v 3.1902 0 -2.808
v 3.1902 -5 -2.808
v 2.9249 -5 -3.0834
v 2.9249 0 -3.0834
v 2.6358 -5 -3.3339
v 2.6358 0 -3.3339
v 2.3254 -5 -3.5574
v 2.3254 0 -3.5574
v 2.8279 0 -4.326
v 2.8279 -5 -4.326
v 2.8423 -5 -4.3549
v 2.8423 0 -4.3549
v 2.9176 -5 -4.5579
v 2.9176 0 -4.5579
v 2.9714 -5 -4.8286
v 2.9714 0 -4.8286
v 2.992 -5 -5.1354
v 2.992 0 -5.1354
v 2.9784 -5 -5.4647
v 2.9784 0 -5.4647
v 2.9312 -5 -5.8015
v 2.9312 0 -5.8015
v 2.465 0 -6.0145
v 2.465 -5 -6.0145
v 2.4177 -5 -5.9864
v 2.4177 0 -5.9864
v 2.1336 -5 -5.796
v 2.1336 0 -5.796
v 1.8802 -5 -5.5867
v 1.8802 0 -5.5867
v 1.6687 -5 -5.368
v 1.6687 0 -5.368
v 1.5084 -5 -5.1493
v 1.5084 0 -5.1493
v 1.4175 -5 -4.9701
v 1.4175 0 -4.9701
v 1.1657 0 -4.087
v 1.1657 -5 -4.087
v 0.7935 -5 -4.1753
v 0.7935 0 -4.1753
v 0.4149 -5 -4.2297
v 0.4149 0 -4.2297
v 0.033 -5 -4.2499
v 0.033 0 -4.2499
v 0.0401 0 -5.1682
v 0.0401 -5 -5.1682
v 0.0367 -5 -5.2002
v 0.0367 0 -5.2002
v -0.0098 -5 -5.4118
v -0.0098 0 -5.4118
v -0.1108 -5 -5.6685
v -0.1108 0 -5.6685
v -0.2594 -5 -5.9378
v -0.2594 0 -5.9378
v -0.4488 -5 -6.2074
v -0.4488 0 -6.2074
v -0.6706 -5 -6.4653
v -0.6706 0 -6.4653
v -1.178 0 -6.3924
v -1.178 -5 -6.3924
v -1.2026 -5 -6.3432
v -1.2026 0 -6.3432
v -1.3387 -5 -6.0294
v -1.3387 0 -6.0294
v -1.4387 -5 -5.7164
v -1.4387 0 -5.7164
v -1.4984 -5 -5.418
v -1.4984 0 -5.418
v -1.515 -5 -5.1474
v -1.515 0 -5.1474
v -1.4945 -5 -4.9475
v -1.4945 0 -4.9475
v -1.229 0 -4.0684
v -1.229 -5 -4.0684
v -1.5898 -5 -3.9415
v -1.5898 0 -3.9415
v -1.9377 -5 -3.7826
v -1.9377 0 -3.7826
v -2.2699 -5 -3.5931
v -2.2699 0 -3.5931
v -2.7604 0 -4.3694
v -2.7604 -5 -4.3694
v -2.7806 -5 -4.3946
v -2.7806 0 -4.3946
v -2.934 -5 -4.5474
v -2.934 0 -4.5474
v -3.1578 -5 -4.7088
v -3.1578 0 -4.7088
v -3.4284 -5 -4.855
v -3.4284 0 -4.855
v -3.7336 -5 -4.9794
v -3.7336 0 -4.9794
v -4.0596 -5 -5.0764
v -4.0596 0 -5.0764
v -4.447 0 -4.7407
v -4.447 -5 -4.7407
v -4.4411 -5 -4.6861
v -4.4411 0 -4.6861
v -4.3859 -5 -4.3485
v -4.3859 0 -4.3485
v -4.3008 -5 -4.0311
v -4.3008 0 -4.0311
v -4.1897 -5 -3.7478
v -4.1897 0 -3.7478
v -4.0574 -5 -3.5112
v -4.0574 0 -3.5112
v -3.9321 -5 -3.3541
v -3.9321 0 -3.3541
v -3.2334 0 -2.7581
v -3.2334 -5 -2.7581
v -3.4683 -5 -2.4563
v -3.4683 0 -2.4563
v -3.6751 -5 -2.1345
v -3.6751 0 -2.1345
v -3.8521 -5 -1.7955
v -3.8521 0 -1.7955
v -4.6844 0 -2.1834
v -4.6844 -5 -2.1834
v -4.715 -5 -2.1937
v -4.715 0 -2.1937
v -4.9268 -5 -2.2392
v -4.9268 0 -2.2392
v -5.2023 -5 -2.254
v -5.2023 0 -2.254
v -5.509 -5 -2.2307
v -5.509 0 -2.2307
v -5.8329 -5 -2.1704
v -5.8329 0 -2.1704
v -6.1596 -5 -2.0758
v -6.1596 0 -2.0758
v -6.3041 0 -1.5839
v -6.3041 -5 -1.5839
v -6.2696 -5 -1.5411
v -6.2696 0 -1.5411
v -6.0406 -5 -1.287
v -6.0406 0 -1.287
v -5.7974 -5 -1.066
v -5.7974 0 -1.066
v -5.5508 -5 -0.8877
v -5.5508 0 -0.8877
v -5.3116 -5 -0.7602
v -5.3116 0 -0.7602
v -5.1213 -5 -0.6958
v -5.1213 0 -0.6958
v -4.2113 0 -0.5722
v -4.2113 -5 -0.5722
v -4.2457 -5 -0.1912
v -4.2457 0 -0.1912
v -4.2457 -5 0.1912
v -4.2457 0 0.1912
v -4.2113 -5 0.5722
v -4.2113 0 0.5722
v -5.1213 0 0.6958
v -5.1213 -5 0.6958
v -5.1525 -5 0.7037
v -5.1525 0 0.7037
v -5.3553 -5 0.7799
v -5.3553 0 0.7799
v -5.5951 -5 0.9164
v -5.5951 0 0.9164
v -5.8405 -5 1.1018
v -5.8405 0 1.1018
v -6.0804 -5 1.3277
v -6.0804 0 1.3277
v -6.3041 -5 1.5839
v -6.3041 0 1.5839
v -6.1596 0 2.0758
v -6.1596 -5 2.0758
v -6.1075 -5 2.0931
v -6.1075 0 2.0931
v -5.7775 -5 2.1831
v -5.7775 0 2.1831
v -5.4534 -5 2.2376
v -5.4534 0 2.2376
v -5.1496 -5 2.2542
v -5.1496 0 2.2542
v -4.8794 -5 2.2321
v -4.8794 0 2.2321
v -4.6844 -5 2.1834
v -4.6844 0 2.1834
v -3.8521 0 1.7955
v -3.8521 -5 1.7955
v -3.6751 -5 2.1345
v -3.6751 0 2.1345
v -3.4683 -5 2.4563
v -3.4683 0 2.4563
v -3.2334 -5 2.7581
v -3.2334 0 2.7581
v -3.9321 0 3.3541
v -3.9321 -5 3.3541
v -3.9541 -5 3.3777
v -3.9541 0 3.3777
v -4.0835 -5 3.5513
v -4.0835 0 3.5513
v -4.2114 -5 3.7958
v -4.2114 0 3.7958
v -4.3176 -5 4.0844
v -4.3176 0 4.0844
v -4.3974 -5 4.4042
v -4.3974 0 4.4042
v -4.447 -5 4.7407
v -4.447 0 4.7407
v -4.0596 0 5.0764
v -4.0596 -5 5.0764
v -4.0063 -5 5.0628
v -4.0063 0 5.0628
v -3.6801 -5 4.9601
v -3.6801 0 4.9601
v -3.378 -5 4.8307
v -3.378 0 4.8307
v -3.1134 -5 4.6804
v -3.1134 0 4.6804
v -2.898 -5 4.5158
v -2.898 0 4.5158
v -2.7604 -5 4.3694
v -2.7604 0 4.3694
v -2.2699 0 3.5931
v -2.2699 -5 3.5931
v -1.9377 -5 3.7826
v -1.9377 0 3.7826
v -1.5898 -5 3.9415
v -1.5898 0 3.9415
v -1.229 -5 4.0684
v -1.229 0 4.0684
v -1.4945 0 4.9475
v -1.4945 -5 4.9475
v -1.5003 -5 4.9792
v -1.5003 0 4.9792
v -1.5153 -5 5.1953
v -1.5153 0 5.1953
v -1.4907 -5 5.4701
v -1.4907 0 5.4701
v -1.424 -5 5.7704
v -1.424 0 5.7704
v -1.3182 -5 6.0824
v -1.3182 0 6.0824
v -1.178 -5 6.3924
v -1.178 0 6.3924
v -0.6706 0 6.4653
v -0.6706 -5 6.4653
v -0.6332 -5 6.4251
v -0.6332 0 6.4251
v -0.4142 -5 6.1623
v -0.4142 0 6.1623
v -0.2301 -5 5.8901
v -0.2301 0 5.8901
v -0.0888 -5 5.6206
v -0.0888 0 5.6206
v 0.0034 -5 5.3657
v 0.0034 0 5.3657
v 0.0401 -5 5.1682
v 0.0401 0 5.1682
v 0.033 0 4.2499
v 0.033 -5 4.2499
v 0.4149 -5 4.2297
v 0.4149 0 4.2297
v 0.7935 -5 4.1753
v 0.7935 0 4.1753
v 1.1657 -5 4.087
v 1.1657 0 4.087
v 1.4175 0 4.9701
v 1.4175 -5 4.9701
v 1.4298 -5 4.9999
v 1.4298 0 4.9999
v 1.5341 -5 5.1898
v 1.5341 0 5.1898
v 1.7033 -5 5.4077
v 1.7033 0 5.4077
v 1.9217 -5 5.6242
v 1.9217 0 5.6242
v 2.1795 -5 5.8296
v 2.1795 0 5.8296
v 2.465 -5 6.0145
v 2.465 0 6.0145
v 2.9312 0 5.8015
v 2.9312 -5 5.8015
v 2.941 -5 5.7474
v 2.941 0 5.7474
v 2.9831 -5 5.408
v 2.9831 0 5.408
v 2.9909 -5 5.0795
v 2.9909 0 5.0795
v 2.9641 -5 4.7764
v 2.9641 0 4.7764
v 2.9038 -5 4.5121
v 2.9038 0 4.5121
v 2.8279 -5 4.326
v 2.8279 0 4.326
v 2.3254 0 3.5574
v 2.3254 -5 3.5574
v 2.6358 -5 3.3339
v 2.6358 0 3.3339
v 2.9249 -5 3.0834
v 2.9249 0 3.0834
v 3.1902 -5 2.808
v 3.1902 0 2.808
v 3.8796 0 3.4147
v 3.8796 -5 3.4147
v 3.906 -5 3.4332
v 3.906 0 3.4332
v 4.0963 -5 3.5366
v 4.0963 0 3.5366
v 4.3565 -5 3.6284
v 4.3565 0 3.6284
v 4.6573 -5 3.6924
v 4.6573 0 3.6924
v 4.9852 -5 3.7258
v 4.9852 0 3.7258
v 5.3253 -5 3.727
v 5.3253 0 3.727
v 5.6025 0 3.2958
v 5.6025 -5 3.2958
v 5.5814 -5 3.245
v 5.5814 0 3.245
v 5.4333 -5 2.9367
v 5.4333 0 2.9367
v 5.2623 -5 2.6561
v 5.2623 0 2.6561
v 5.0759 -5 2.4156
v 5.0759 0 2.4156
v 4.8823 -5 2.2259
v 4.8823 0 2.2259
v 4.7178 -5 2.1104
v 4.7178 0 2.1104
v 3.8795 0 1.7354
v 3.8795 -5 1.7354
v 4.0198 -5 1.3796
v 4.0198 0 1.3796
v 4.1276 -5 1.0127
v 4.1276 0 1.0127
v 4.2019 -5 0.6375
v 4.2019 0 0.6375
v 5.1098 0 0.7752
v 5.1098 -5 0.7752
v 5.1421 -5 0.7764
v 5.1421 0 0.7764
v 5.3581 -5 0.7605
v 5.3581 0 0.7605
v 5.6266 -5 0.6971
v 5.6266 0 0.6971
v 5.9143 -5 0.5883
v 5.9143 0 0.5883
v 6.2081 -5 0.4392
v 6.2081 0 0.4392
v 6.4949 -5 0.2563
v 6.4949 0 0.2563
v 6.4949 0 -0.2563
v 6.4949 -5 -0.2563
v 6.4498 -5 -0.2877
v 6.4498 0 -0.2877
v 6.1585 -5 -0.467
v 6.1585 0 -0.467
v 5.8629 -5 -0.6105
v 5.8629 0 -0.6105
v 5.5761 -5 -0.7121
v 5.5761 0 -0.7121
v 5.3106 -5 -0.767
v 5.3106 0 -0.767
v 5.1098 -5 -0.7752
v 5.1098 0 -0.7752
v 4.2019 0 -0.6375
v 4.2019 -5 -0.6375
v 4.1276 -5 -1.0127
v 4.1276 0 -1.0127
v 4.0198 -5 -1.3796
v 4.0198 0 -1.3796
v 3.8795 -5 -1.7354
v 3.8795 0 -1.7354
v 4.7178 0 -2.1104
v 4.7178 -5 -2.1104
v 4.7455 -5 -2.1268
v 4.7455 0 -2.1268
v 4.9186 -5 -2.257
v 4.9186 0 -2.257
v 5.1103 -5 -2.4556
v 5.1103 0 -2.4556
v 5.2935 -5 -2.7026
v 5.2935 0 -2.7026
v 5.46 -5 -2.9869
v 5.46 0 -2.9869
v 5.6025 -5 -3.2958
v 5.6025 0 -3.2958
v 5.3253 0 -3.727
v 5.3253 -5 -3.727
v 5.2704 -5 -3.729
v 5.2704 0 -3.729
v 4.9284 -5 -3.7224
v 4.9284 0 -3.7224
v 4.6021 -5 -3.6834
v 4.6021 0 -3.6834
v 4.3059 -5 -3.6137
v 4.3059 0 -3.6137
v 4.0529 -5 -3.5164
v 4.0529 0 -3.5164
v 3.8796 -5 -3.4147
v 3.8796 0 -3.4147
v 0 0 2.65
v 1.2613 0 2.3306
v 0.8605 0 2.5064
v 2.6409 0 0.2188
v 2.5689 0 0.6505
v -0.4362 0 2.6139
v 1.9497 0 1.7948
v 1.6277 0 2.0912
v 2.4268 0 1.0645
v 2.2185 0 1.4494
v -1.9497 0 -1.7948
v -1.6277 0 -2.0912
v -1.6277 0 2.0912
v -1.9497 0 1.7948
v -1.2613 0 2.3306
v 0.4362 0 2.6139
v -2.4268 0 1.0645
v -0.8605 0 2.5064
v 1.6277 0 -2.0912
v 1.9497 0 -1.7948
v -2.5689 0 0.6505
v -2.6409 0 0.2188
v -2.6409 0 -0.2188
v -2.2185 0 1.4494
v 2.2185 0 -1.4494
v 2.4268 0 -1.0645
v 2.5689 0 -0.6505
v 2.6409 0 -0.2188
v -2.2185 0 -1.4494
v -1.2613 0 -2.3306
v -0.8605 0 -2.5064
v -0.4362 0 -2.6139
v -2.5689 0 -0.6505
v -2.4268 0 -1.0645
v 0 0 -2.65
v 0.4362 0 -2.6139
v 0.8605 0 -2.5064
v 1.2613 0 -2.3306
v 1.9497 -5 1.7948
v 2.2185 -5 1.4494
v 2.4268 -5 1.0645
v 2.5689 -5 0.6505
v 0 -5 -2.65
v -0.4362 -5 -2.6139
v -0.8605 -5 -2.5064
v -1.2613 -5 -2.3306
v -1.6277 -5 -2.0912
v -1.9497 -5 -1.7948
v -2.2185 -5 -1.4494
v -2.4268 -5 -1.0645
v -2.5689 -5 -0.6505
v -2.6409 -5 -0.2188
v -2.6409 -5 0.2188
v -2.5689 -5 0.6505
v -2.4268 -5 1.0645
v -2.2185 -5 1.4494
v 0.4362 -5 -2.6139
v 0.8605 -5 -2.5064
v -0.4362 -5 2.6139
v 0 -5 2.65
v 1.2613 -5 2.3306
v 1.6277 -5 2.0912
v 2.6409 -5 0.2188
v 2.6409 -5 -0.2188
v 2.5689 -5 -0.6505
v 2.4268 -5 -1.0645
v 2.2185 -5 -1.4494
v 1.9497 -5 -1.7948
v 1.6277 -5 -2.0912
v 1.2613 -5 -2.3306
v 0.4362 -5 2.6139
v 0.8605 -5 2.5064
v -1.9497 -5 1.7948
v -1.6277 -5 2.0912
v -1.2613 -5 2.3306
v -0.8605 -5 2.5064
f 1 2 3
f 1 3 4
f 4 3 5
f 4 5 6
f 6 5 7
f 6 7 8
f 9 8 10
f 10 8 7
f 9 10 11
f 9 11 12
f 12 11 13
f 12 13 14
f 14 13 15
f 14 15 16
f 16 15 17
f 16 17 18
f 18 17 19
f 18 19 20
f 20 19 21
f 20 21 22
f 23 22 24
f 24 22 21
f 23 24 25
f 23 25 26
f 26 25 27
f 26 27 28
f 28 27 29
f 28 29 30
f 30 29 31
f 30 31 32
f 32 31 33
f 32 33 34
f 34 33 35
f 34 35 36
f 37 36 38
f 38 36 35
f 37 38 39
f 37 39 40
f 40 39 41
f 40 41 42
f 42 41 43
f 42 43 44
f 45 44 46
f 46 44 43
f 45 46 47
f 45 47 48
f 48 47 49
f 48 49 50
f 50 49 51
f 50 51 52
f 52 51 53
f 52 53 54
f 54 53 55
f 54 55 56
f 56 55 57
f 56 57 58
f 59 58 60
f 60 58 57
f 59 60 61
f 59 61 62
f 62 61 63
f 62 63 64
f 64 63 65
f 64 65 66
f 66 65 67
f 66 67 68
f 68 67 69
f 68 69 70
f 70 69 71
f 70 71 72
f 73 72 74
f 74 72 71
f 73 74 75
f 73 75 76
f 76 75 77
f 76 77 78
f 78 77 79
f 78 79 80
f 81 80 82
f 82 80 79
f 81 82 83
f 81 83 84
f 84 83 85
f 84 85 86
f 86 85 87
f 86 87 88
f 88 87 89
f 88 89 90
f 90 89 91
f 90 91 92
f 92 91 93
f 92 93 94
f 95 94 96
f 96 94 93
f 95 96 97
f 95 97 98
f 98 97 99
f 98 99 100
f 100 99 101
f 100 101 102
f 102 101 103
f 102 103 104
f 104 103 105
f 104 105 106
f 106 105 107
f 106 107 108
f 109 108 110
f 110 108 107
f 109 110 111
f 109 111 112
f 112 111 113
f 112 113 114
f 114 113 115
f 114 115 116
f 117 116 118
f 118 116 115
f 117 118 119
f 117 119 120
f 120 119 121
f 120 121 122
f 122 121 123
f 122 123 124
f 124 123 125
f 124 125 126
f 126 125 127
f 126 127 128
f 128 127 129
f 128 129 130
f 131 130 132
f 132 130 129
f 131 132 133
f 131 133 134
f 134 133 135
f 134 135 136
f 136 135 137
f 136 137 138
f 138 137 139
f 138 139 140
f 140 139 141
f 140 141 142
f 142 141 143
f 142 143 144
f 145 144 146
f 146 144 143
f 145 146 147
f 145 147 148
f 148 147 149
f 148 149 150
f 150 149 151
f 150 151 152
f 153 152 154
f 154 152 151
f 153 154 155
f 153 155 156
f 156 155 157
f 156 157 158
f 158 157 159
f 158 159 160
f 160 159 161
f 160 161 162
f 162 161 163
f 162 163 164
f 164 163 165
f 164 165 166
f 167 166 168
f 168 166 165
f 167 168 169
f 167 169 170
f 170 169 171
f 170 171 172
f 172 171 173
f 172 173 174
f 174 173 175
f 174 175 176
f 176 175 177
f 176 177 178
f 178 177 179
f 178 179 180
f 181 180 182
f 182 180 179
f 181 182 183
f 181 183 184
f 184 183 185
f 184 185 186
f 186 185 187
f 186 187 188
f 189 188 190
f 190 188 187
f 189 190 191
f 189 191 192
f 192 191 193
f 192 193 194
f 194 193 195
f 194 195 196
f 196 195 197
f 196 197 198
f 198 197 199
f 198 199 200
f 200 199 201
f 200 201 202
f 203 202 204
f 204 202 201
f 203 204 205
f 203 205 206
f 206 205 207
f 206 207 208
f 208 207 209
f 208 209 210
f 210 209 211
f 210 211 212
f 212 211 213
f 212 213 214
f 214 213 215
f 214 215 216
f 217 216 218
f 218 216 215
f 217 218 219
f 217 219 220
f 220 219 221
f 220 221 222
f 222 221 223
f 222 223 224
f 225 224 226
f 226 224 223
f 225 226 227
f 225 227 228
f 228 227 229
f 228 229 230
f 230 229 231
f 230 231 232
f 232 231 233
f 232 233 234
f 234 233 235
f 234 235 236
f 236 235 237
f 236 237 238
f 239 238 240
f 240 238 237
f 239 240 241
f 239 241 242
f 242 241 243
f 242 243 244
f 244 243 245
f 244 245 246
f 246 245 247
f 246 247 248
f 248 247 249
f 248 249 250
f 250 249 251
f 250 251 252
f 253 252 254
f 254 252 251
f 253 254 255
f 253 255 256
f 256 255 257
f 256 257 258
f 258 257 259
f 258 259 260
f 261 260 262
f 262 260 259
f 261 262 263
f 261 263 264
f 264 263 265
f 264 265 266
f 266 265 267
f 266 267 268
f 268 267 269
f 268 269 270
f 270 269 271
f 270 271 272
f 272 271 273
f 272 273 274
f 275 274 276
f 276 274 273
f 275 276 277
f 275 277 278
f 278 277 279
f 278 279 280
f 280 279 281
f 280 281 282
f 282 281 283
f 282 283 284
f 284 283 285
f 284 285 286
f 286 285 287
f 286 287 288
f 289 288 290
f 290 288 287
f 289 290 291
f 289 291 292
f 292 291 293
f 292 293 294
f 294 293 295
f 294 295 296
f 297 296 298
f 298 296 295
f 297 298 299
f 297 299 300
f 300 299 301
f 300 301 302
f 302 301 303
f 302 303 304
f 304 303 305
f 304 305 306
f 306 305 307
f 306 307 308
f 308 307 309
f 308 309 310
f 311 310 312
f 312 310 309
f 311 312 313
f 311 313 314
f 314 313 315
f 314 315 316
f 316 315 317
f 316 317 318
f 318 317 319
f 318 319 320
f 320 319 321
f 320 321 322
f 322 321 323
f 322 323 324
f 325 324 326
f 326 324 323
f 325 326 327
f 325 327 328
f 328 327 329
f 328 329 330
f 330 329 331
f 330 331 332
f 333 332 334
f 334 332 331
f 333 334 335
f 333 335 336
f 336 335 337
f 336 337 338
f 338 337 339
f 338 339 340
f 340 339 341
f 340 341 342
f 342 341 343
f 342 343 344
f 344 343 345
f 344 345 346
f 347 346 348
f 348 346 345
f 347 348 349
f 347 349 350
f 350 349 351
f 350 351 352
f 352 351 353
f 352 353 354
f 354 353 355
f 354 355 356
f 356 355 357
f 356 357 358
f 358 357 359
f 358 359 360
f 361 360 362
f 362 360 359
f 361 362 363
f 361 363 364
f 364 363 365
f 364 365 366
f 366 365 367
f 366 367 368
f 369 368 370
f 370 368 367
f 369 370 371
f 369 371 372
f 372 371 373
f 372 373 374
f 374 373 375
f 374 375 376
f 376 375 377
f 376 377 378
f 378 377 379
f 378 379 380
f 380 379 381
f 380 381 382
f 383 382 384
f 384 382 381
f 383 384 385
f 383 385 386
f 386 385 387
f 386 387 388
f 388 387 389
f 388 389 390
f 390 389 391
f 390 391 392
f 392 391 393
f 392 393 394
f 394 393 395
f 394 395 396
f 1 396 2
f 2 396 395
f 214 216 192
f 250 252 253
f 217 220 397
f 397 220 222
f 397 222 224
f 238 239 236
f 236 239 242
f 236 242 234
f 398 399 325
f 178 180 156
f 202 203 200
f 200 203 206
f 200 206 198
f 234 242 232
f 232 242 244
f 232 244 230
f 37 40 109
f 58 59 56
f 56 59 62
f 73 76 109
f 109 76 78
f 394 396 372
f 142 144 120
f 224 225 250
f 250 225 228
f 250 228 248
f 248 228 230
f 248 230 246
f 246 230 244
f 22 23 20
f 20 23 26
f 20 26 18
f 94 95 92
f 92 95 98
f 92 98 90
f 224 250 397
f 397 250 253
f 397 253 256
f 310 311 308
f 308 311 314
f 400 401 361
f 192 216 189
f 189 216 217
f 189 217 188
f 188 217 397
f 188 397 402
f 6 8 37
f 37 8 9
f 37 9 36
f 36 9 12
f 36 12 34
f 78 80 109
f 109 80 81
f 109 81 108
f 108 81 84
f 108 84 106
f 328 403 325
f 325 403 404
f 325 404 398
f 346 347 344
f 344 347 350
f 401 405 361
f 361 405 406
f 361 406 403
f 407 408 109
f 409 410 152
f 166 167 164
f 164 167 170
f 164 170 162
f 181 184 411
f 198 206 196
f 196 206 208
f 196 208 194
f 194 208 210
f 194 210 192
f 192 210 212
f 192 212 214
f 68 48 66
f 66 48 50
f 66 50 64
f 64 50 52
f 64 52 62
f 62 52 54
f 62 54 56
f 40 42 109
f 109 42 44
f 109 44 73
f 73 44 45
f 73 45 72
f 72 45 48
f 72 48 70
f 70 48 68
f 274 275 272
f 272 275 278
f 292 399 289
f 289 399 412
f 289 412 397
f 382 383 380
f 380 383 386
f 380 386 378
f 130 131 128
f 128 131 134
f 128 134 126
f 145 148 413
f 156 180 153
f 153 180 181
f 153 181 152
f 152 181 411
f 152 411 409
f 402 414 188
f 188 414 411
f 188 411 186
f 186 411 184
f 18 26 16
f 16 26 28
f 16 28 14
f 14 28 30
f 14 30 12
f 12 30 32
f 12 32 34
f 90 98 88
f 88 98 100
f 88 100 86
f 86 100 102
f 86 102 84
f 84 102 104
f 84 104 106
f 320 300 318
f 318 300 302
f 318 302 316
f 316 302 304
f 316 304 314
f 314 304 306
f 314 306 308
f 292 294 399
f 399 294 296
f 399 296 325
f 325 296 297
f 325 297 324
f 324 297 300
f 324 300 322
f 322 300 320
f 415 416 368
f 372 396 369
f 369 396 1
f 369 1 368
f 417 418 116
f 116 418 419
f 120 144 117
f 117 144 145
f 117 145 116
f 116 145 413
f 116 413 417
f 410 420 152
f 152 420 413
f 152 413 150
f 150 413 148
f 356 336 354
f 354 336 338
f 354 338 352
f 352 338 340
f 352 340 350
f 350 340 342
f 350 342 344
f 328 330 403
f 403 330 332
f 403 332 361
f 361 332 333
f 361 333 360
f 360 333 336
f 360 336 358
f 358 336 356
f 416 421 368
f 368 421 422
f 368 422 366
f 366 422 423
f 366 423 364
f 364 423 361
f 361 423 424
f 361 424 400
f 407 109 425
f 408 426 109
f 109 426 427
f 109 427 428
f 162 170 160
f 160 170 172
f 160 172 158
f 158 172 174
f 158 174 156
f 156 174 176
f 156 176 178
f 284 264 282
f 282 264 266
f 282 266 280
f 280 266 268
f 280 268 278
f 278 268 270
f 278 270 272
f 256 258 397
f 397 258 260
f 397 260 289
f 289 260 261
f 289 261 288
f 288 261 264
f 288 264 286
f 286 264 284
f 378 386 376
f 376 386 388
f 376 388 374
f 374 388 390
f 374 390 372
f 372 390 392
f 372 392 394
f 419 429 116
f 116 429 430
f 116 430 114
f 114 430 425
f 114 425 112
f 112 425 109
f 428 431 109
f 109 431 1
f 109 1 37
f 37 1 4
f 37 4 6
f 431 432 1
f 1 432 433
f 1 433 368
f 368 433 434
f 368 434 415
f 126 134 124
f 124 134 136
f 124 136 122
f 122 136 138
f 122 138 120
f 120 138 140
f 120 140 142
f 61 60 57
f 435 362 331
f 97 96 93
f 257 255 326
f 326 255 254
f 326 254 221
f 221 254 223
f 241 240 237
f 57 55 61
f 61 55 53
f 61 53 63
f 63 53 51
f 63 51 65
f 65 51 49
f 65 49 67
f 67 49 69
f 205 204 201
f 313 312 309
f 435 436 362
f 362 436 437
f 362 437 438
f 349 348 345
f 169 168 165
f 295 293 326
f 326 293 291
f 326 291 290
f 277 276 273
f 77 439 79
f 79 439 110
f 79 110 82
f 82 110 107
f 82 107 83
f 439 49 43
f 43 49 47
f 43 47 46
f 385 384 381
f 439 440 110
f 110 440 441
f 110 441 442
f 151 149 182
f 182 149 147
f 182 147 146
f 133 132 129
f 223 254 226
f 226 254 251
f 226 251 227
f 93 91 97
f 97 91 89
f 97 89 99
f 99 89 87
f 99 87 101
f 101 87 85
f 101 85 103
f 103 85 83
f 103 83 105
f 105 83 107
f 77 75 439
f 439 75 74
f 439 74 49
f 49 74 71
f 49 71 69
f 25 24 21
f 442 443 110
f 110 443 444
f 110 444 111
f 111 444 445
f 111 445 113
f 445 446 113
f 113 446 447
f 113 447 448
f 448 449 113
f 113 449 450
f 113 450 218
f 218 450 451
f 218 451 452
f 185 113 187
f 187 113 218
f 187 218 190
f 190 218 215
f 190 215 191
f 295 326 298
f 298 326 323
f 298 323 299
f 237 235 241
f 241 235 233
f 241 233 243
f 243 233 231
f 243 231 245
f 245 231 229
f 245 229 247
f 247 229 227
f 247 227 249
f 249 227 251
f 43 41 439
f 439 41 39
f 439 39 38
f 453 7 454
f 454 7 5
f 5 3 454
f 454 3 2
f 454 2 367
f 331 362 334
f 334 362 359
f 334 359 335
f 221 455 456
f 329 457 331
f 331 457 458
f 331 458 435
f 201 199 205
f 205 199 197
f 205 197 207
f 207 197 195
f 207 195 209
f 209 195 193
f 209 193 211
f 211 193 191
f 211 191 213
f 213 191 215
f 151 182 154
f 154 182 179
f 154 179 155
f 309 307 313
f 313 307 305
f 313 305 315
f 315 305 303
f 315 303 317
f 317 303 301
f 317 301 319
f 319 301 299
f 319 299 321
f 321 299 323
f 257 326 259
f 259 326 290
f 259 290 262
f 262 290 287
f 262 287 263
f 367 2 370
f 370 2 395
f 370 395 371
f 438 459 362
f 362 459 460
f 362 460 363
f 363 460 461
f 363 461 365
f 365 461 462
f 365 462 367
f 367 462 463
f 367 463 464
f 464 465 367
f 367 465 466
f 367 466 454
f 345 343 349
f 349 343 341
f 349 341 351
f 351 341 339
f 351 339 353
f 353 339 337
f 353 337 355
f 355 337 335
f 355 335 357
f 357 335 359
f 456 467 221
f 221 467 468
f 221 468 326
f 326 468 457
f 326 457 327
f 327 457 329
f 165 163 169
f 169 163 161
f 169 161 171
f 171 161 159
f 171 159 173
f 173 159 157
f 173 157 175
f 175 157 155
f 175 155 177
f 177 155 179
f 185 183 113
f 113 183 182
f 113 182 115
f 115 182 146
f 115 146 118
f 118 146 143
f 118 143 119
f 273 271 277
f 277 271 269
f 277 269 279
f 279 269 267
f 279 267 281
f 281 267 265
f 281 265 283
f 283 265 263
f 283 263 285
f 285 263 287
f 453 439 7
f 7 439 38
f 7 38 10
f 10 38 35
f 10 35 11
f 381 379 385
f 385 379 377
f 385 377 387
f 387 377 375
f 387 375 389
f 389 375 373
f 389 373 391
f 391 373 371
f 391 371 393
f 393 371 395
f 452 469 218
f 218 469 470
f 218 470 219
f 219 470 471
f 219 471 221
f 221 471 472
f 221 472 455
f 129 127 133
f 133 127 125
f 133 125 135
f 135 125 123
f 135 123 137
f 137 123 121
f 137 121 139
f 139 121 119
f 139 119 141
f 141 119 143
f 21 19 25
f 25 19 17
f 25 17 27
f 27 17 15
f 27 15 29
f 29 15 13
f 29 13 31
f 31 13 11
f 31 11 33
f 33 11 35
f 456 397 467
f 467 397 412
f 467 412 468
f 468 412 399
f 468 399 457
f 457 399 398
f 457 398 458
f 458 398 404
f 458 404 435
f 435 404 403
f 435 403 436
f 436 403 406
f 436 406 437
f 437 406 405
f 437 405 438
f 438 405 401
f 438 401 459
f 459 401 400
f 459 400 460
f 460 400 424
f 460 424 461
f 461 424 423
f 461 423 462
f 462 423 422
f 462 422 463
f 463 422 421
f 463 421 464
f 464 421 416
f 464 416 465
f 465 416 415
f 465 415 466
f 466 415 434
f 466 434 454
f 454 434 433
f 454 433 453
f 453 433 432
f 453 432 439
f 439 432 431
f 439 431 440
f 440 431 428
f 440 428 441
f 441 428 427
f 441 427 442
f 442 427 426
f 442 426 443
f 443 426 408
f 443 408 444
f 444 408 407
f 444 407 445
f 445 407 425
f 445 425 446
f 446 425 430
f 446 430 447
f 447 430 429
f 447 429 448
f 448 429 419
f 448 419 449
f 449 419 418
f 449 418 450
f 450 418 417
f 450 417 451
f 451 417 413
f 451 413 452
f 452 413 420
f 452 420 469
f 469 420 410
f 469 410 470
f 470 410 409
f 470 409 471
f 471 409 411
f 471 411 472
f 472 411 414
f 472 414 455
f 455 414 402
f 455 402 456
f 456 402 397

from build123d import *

# Parameters (mm, degrees)
BOSS_EXTRUDE1_DEPTH     = 5
CUT_EXTRUDE1_DEPTH      = 11.43956726
CUT_EXTRUDE1_DEPTH_BACK = 11.43956726
SKETCH2_R               = 2.65


with BuildPart() as part:
    # Sketch1 → Boss-Extrude1 (new body)
    with BuildSketch(Plane.XZ.offset(5)):
        with BuildLine():
            Line((3.190229537, -2.808012732), (3.879551376, -3.414747915))
            add(Edge.make_bspline(
                [(3.879551376, -3.414747915), (4.371081204, -3.768547035), (5.325327031, -3.7270487)],
                knots=[3.664389894, 3.664389894, 3.664389894, 4.719659584, 4.719659584, 4.719659584], degree=2, weights=[1, 0.864000321, 1]))
            Line((5.325327031, -3.7270487), (5.602463544, -3.295815869))
            add(Edge.make_bspline(
                [(5.602463544, -3.295815869), (5.243842932, -2.409552511), (4.717787845, -2.11042651)],
                knots=[1.542822379, 1.542822379, 1.542822379, 2.616695251, 2.616695251, 2.616695251], degree=2, weights=[1, 0.859279742, 1]))
            Line((4.717787845, -2.11042651), (3.879527469, -1.735444214))
            ThreePointArc((3.879527469, -1.735444214), (4.077845138, -1.197363367), (4.201918167, -0.637482326))
            Line((4.201918167, -0.637482326), (5.109838405, -0.775224919))
            add(Edge.make_bspline(
                [(5.109838405, -0.775224919), (5.714617855, -0.807118591), (6.494944834, -0.256303727)],
                knots=[3.664389894, 3.664389894, 3.664389894, 4.719659584, 4.719659584, 4.719659584], degree=2, weights=[1, 0.864000321, 1]))
            Line((6.494944834, -0.256303727), (6.494944834, 0.256303727))
            add(Edge.make_bspline(
                [(6.494944834, 0.256303727), (5.714103832, 0.807990967), (5.109838405, 0.775224919)],
                knots=[1.542822379, 1.542822379, 1.542822379, 2.616695251, 2.616695251, 2.616695251], degree=2, weights=[1, 0.859279742, 1]))
            Line((5.109838405, 0.775224919), (4.201918167, 0.637482326))
            ThreePointArc((4.201918167, 0.637482326), (4.077845138, 1.197363367), (3.879527469, 1.735444214))
            Line((3.879527469, 1.735444214), (4.717787845, 2.11042651))
            add(Edge.make_bspline(
                [(4.717787845, 2.11042651), (5.243803714, 2.410564302), (5.602463544, 3.295815869)],
                knots=[0.52279724, 0.52279724, 0.52279724, 1.57806693, 1.57806693, 1.57806693], degree=2, weights=[1, 0.864000321, 1]))
            Line((5.602463544, 3.295815869), (5.325327031, 3.7270487))
            add(Edge.make_bspline(
                [(5.325327031, 3.7270487), (4.370177139, 3.769003022), (3.879551376, 3.414747915)],
                knots=[1.542822379, 1.542822379, 1.542822379, 2.616695251, 2.616695251, 2.616695251], degree=2, weights=[1, 0.859279742, 1]))
            Line((3.879551376, 3.414747915), (3.190229537, 2.808012732))
            ThreePointArc((3.190229537, 2.808012732), (2.783158119, 3.211935691), (2.32541421, 3.557379478))
            Line((2.32541421, 3.557379478), (2.827872978, 4.326032434))
            add(Edge.make_bspline(
                [(2.827872978, 4.326032434), (3.108118945, 4.862910062), (2.931239663, 5.801537213)],
                knots=[0.52279724, 0.52279724, 0.52279724, 1.57806693, 1.57806693, 1.57806693], degree=2, weights=[1, 0.864000321, 1]))
            Line((2.931239663, 5.801537213), (2.464955522, 6.014482045))
            add(Edge.make_bspline(
                [(2.464955522, 6.014482045), (1.638750082, 5.533383248), (1.417534197, 4.970112574)],
                knots=[1.542822379, 1.542822379, 1.542822379, 2.616695251, 2.616695251, 2.616695251], degree=2, weights=[1, 0.859279742, 1]))
            Line((1.417534197, 4.970112574), (1.16566557, 4.087018936))
            ThreePointArc((1.16566557, 4.087018936), (0.604838063, 4.206741128), (0.032998371, 4.249871893))
            Line((0.032998371, 4.249871893), (0.040128421, 5.168153627))
            add(Edge.make_bspline(
                [(0.040128421, 5.168153627), (-0.014371628, 5.771316237), (-0.670632099, 6.465311484)],
                knots=[0.52279724, 0.52279724, 0.52279724, 1.57806693, 1.57806693, 1.57806693], degree=2, weights=[1, 0.864000321, 1]))
            Line((-0.670632099, 6.465311484), (-1.178021948, 6.392359837))
            add(Edge.make_bspline(
                [(-1.178021948, 6.392359837), (-1.612968547, 5.54095339), (-1.494540074, 4.947501609)],
                knots=[4.684415032, 4.684415032, 4.684415032, 5.758287905, 5.758287905, 5.758287905], degree=2, weights=[1, 0.859279742, 1]))
            Line((-1.494540074, 4.947501609), (-1.22898898, 4.068425505))
            ThreePointArc((-1.22898898, 4.068425505), (-1.765513805, 3.86593598), (-2.269894218, 3.59306001))
            Line((-2.269894218, 3.59306001), (-2.760356625, 4.369422559))
            add(Edge.make_bspline(
                [(-2.760356625, 4.369422559), (-3.132299311, 4.847370285), (-4.059582909, 5.076395041)],
                knots=[0.52279724, 0.52279724, 0.52279724, 1.57806693, 1.57806693, 1.57806693], degree=2, weights=[1, 0.864000321, 1]))
            Line((-4.059582909, 5.076395041), (-4.446985774, 4.740708547))
            add(Edge.make_bspline(
                [(-4.446985774, 4.740708547), (-4.352581058, 3.789309981), (-3.932108431, 3.35409384)],
                knots=[4.684415032, 4.684415032, 4.684415032, 5.758287905, 5.758287905, 5.758287905], degree=2, weights=[1, 0.859279742, 1]))
            Line((-3.932108431, 3.35409384), (-3.233448212, 2.758135722))
            ThreePointArc((-3.233448212, 2.758135722), (-3.575327515, 2.297723474), (-3.852111431, 1.795476962))
            Line((-3.852111431, 1.795476962), (-4.684447947, 2.183430702))
            add(Edge.make_bspline(
                [(-4.684447947, 2.183430702), (-5.255744094, 2.384418517), (-6.159644828, 2.07575904)],
                knots=[0.52279724, 0.52279724, 0.52279724, 1.57806693, 1.57806693, 1.57806693], degree=2, weights=[1, 0.864000321, 1]))
            Line((-6.159644828, 2.07575904), (-6.304063037, 1.58391579))
            add(Edge.make_bspline(
                [(-6.304063037, 1.58391579), (-5.710279838, 0.834587427), (-5.121260145, 0.695784976)],
                knots=[4.684415032, 4.684415032, 4.684415032, 5.758287905, 5.758287905, 5.758287905], degree=2, weights=[1, 0.859279742, 1]))
            Line((-5.121260145, 0.695784976), (-4.211310483, 0.572157336))
            ThreePointArc((-4.211310483, 0.572157336), (-4.25, 0), (-4.211310483, -0.572157336))
            Line((-4.211310483, -0.572157336), (-5.121260145, -0.695784976))
            add(Edge.make_bspline(
                [(-5.121260145, -0.695784976), (-5.710527263, -0.835569283), (-6.304063037, -1.58391579)],
                knots=[3.664389894, 3.664389894, 3.664389894, 4.719659584, 4.719659584, 4.719659584], degree=2, weights=[1, 0.864000321, 1]))
            Line((-6.304063037, -1.58391579), (-6.159644828, -2.07575904))
            add(Edge.make_bspline(
                [(-6.159644828, -2.07575904), (-5.255005116, -2.385110738), (-4.684447947, -2.183430702)],
                knots=[4.684415032, 4.684415032, 4.684415032, 5.758287905, 5.758287905, 5.758287905], degree=2, weights=[1, 0.859279742, 1]))
            Line((-4.684447947, -2.183430702), (-3.852111431, -1.795476962))
            ThreePointArc((-3.852111431, -1.795476962), (-3.575327515, -2.297723474), (-3.233448212, -2.758135722))
            Line((-3.233448212, -2.758135722), (-3.932108431, -3.35409384))
            add(Edge.make_bspline(
                [(-3.932108431, -3.35409384), (-4.352258375, -3.790269739), (-4.446985774, -4.740708547)],
                knots=[3.664389894, 3.664389894, 3.664389894, 4.719659584, 4.719659584, 4.719659584], degree=2, weights=[1, 0.864000321, 1]))
            Line((-4.446985774, -4.740708547), (-4.059582909, -5.076395041))
            add(Edge.make_bspline(
                [(-4.059582909, -5.076395041), (-3.1313034, -4.847553096), (-2.760356625, -4.369422559)],
                knots=[4.684415032, 4.684415032, 4.684415032, 5.758287905, 5.758287905, 5.758287905], degree=2, weights=[1, 0.859279742, 1]))
            Line((-2.760356625, -4.369422559), (-2.269894218, -3.59306001))
            ThreePointArc((-2.269894218, -3.59306001), (-1.765513805, -3.86593598), (-1.22898898, -4.068425505))
            Line((-1.22898898, -4.068425505), (-1.494540074, -4.947501609))
            add(Edge.make_bspline(
                [(-1.494540074, -4.947501609), (-1.612178204, -5.541586333), (-1.178021948, -6.392359837)],
                knots=[3.664389894, 3.664389894, 3.664389894, 4.719659584, 4.719659584, 4.719659584], degree=2, weights=[1, 0.864000321, 1]))
            Line((-1.178021948, -6.392359837), (-0.670632099, -6.465311484))
            add(Edge.make_bspline(
                [(-0.670632099, -6.465311484), (-0.013434979, -5.770931598), (0.040128421, -5.168153627)],
                knots=[1.542822379, 1.542822379, 1.542822379, 2.616695251, 2.616695251, 2.616695251], degree=2, weights=[1, 0.859279742, 1]))
            Line((0.040128421, -5.168153627), (0.032998371, -4.249871893))
            ThreePointArc((0.032998371, -4.249871893), (0.604838063, -4.206741128), (1.16566557, -4.087018936))
            Line((1.16566557, -4.087018936), (1.417534197, -4.970112574))
            add(Edge.make_bspline(
                [(1.417534197, -4.970112574), (1.639757156, -5.533488422), (2.464955522, -6.014482045)],
                knots=[3.664389894, 3.664389894, 3.664389894, 4.719659584, 4.719659584, 4.719659584], degree=2, weights=[1, 0.864000321, 1]))
            Line((2.464955522, -6.014482045), (2.931239663, -5.801537213))
            add(Edge.make_bspline(
                [(2.931239663, -5.801537213), (3.108698953, -4.862080092), (2.827872978, -4.326032434)],
                knots=[1.542822379, 1.542822379, 1.542822379, 2.616695251, 2.616695251, 2.616695251], degree=2, weights=[1, 0.859279742, 1]))
            Line((2.827872978, -4.326032434), (2.32541421, -3.557379478))
            ThreePointArc((2.32541421, -3.557379478), (2.783158119, -3.211935691), (3.190229537, -2.808012732))
        make_face()
    extrude(amount=-BOSS_EXTRUDE1_DEPTH)

    # Sketch2 → Cut-Extrude1 (cut, two sides: drawn at the far end of the back side and taken through both)
    with BuildSketch(Plane(origin=(0, 0, 0), x_dir=(1, 0, 0), z_dir=(0, 1, 0)).offset(-CUT_EXTRUDE1_DEPTH_BACK)):
        with Locations(Location((0, 0, 0), (0, 0, 270))):
            Circle(SKETCH2_R)
    extrude(amount=CUT_EXTRUDE1_DEPTH + CUT_EXTRUDE1_DEPTH_BACK, mode=Mode.SUBTRACT)


solid = part.part
